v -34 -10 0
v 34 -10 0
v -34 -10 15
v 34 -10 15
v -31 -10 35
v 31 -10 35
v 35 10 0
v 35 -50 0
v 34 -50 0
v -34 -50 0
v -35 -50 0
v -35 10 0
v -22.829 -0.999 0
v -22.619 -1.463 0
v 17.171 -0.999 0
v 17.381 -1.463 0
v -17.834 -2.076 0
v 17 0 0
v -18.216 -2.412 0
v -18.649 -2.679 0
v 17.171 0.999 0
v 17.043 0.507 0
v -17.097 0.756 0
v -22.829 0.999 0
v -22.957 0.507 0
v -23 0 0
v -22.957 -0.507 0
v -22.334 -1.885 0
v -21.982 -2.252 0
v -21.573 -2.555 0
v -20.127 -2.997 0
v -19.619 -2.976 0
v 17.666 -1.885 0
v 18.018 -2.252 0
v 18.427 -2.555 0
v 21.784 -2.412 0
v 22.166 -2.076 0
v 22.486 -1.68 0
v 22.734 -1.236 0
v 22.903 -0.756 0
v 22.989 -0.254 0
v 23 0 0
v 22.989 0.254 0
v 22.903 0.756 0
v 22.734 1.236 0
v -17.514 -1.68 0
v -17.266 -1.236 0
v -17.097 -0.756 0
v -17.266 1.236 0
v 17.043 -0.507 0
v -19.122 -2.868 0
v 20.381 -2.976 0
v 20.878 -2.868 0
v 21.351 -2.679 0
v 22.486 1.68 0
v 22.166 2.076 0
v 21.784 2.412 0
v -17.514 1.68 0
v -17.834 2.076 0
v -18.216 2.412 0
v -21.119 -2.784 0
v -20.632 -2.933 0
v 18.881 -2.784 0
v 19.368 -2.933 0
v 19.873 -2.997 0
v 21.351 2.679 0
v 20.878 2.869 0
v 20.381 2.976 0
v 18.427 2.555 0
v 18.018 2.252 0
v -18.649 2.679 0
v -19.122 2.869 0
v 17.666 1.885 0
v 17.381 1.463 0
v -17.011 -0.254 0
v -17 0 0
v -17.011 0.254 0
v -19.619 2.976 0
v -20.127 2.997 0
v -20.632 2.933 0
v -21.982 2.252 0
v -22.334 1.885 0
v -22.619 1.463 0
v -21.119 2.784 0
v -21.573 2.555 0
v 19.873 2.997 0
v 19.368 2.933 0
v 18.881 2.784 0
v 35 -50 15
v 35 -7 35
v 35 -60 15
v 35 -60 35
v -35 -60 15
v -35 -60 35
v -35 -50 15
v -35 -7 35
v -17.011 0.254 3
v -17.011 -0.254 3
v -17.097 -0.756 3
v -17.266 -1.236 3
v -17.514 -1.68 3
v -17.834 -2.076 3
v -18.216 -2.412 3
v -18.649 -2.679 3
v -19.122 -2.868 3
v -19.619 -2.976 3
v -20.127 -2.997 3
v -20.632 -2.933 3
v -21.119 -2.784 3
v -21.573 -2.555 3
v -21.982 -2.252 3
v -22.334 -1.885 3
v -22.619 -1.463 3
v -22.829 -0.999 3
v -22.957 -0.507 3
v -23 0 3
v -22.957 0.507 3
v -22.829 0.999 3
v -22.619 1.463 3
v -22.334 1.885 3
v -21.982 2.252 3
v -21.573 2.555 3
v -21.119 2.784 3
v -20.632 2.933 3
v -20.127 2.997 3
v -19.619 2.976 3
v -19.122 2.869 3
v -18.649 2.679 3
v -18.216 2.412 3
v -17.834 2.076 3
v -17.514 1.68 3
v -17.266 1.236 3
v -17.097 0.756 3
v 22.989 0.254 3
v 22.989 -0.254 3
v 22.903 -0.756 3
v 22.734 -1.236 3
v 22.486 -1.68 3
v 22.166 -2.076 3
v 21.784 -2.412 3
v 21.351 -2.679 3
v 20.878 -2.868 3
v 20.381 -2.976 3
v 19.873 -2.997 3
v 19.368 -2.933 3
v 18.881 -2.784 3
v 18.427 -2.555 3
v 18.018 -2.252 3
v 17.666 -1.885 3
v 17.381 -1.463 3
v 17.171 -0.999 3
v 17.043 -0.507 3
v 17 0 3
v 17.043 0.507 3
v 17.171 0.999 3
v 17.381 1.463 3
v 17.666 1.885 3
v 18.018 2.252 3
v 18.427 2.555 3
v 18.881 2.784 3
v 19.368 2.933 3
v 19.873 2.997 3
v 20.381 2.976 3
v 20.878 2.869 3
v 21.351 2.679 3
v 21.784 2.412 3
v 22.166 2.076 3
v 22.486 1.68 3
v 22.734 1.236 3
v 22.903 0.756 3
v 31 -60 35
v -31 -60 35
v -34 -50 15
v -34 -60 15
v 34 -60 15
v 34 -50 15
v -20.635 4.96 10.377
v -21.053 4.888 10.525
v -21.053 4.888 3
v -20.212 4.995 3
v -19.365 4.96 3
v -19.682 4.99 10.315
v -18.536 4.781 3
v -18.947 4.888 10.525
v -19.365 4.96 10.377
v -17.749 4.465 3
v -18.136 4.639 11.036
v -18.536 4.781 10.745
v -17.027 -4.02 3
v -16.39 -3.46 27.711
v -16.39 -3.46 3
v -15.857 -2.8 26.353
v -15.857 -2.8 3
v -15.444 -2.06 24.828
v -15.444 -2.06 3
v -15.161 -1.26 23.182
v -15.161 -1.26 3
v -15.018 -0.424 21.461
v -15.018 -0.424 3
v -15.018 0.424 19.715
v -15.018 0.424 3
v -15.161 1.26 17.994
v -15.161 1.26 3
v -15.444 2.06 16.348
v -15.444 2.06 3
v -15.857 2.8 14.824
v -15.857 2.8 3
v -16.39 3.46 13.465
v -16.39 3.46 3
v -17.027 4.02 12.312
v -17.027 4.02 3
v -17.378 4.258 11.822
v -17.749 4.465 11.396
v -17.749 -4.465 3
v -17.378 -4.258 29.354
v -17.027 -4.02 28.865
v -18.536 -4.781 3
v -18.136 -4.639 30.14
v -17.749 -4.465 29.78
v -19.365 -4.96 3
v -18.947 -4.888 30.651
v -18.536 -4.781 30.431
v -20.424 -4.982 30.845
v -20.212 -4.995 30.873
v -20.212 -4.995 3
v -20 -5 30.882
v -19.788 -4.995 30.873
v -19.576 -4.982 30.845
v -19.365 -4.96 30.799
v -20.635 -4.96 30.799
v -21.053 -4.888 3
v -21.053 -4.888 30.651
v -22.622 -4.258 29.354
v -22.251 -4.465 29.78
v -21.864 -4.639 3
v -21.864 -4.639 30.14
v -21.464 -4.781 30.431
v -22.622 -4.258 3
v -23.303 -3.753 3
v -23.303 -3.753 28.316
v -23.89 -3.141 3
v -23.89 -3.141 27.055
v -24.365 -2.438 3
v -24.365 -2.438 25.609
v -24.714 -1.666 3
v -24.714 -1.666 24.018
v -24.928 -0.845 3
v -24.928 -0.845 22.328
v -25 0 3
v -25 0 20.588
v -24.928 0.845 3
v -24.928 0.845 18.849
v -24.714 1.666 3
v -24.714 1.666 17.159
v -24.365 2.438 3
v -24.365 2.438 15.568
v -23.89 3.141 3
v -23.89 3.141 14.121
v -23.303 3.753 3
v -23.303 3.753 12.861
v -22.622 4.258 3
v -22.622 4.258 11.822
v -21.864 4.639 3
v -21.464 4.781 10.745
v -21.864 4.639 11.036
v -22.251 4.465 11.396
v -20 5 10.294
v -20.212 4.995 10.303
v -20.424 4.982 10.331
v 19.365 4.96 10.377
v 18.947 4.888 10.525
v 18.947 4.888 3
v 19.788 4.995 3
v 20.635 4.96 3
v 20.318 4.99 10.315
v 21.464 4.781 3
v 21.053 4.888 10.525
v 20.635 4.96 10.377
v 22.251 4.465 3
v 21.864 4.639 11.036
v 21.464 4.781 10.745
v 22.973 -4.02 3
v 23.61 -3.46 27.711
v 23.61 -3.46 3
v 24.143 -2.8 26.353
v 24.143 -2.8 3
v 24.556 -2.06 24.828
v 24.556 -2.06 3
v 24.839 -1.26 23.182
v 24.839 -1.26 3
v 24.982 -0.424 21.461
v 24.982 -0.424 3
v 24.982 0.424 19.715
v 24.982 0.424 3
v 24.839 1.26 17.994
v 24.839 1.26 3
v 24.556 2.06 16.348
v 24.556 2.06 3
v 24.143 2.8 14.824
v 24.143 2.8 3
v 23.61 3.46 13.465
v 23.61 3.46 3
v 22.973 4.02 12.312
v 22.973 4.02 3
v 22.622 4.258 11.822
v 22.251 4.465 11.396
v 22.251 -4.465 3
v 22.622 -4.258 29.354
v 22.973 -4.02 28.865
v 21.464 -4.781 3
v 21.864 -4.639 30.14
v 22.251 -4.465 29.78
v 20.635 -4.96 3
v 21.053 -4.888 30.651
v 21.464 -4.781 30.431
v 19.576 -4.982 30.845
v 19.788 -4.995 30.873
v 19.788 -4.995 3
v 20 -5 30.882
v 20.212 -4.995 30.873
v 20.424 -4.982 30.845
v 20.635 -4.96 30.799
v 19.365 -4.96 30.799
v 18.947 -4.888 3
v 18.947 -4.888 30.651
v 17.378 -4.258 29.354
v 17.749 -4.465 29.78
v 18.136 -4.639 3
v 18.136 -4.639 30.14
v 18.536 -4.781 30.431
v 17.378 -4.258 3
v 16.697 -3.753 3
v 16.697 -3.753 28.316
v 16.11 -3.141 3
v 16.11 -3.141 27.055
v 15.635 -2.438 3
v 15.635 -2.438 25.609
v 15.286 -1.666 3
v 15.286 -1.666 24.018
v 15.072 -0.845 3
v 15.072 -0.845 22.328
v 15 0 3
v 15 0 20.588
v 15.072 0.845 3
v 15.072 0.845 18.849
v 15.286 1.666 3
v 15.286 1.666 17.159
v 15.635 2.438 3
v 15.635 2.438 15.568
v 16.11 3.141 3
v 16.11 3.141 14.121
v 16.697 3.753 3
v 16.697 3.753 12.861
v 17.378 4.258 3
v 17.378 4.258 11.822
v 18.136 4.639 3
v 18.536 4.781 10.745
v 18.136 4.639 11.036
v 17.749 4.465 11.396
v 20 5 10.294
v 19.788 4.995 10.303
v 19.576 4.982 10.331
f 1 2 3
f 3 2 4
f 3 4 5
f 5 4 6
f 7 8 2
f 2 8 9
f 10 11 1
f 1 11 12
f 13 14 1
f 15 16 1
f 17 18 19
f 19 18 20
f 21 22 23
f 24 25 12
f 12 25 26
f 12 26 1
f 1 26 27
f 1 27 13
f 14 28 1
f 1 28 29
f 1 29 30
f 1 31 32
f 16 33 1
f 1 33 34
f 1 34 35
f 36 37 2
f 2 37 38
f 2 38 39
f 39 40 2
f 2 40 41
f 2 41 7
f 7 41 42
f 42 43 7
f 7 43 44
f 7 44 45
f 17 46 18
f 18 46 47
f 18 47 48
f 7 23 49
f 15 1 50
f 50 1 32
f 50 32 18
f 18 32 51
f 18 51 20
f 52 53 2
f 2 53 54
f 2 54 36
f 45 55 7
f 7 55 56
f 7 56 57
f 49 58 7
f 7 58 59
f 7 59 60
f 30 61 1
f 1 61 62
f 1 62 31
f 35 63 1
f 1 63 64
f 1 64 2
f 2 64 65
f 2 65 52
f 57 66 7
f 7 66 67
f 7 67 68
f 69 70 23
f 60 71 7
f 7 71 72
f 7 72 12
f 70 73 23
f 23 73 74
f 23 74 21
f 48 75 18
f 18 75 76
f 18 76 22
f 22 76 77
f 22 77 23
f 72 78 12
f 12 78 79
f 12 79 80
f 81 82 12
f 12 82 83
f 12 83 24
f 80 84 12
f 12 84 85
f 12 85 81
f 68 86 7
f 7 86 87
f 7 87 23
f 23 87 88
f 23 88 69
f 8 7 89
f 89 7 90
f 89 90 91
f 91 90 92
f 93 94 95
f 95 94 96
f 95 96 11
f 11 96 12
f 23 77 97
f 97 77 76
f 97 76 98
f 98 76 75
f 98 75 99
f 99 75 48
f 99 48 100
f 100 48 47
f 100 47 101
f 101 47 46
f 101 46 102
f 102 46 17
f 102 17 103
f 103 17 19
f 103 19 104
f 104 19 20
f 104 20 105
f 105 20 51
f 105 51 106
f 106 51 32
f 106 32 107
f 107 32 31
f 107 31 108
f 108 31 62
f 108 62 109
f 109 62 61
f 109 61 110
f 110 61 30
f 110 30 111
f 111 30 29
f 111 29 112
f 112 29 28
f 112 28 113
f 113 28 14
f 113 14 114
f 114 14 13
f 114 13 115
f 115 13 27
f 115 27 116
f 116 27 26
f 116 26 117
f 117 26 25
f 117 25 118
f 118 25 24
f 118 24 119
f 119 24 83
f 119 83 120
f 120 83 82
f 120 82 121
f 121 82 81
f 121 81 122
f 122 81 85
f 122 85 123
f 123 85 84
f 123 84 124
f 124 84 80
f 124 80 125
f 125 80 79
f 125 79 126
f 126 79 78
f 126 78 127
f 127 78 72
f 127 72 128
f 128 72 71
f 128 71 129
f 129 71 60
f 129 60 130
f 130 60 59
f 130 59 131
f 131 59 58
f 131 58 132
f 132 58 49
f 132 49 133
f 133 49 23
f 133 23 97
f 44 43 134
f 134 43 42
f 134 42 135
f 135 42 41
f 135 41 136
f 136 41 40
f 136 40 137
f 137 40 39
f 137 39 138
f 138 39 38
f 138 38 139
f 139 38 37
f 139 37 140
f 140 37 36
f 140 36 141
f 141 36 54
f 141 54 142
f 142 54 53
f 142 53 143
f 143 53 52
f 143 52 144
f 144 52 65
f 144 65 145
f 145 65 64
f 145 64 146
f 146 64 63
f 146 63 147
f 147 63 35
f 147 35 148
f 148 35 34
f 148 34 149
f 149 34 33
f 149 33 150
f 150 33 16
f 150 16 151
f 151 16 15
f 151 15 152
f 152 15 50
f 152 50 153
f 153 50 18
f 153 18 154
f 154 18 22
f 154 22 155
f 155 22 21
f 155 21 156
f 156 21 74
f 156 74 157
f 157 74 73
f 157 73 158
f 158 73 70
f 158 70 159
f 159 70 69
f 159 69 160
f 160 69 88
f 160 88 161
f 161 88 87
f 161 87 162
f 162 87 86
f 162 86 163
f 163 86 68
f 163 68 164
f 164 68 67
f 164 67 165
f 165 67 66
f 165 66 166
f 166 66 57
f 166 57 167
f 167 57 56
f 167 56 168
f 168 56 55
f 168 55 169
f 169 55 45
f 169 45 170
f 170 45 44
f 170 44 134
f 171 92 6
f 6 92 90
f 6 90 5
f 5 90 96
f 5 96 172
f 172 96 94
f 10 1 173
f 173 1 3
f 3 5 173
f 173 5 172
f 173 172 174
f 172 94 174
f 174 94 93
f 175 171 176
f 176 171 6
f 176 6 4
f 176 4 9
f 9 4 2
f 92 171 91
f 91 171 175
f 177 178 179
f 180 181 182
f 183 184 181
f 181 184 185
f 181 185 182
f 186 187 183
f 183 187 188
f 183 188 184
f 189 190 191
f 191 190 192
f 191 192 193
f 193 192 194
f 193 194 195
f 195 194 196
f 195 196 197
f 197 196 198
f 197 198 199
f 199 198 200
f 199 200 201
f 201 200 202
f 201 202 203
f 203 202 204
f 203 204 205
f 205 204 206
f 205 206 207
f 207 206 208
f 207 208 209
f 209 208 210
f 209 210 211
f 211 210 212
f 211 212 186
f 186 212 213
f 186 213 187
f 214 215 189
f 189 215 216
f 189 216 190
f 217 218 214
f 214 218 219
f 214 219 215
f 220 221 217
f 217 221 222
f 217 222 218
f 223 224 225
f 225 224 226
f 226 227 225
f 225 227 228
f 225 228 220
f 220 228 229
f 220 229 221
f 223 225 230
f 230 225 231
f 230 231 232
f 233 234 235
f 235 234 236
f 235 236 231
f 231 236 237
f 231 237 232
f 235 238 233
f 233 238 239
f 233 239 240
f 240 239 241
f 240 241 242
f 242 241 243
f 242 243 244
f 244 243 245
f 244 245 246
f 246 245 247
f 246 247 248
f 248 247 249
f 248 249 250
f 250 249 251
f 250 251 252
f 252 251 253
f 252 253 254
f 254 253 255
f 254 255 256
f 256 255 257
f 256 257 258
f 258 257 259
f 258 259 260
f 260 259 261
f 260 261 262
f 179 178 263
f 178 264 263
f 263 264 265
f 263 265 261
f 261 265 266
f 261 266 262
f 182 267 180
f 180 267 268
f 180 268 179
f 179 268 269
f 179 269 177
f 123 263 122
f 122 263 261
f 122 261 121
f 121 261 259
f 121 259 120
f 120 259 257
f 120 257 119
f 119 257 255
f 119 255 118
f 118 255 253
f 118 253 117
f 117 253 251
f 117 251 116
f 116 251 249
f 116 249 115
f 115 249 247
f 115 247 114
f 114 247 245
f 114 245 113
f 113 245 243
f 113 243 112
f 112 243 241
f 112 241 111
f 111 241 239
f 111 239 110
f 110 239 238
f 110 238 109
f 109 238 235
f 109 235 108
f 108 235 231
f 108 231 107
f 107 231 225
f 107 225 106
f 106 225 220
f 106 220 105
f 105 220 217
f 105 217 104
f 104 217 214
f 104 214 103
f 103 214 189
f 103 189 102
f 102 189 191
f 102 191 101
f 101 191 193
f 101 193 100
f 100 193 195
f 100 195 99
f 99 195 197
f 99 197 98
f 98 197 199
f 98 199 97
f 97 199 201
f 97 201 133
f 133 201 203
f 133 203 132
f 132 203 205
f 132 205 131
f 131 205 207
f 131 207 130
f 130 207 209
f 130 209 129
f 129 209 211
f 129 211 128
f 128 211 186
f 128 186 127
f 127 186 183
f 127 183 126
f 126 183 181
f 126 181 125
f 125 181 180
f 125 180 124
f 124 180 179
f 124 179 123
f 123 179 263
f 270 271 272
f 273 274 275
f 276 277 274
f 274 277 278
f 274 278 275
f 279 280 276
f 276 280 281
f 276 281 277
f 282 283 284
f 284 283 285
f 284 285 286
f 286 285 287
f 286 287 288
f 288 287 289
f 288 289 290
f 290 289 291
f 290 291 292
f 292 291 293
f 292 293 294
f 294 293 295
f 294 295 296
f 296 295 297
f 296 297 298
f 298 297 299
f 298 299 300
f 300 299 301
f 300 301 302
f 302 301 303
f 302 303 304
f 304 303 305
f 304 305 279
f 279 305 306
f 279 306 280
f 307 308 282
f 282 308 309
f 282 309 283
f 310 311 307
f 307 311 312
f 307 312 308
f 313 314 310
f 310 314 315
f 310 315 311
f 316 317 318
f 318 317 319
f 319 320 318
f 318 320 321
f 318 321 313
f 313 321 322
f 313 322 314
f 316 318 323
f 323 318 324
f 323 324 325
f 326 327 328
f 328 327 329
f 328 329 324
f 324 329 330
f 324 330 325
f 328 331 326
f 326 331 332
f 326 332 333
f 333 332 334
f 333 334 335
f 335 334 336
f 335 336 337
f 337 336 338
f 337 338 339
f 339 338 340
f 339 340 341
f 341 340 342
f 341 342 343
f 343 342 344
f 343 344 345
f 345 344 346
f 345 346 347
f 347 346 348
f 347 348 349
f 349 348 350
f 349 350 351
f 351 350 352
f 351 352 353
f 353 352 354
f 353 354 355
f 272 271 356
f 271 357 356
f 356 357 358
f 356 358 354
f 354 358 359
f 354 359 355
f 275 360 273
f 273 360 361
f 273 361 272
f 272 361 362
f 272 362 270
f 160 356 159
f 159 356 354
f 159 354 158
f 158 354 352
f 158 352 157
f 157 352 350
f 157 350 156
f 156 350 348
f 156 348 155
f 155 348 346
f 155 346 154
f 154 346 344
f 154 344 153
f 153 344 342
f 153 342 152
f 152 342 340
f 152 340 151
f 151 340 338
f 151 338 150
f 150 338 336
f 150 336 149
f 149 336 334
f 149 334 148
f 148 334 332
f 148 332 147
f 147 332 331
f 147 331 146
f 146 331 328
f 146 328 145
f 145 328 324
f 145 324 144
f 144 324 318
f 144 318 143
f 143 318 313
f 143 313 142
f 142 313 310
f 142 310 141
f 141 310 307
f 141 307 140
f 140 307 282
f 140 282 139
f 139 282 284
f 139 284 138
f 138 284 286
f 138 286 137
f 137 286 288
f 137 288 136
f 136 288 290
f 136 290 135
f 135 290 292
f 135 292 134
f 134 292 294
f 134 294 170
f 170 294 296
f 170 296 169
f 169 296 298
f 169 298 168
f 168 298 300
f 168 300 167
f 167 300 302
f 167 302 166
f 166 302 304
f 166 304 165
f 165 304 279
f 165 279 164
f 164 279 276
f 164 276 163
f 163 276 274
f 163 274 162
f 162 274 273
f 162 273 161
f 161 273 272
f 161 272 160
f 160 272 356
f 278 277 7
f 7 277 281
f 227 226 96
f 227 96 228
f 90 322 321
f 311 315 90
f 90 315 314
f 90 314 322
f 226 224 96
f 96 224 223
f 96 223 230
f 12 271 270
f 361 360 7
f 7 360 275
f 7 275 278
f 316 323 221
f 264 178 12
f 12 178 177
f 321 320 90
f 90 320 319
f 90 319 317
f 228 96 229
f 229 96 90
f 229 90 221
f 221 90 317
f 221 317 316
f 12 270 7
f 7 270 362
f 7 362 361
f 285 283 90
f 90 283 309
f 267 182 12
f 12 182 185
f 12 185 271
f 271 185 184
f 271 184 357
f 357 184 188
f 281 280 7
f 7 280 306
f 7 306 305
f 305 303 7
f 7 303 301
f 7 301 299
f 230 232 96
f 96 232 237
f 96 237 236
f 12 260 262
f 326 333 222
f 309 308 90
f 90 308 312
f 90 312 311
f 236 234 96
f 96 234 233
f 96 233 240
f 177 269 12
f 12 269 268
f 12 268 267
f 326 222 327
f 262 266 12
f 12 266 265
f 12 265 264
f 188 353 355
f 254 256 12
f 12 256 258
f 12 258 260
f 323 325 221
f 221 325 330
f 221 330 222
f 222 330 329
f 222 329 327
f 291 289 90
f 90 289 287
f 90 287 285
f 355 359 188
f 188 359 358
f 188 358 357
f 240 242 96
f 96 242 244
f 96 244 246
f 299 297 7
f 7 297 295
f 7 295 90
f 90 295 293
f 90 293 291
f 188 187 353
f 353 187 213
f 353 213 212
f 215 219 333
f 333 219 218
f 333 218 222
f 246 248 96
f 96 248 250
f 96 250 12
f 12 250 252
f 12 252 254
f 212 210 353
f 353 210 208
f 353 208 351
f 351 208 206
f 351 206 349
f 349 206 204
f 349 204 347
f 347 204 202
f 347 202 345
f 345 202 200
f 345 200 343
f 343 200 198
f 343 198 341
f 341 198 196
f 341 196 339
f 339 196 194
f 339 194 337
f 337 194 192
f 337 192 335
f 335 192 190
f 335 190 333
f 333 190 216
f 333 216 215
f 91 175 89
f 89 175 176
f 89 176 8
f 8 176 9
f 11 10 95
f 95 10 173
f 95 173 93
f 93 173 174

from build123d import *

# Parameters (mm, degrees)
SKETCH_1_W          = 70
SKETCH_1_H          = 20
SKETCH_1_R          = 3
EXTRUDE_1_DEPTH     = 3
SKETCH_3_W          = 70
SKETCH_3_H          = 35
EXTRUDE_2_DEPTH     = 3
EXTRUDE_3_DEPTH     = 50
EXTRUDE_4_DEPTH     = 70
SKETCH_6_R          = 5
CUT_EXTRUDE_3_DEPTH = 30
CUT_EXTRUDE_4_DEPTH = 70
SKETCH_8_W          = 15
SKETCH_8_H          = 10
CUT_EXTRUDE_5_DEPTH = 99.615414617


with BuildPart() as part:
    # 草图1 → 凸台-拉伸1 (new body)
    with BuildSketch(Plane.XY):
        Rectangle(SKETCH_1_W, SKETCH_1_H)
        with Locations((-20, 0)):
            Circle(SKETCH_1_R, mode=Mode.SUBTRACT)
        with Locations((20, 0)):
            Circle(SKETCH_1_R, mode=Mode.SUBTRACT)
    extrude(amount=EXTRUDE_1_DEPTH)

    # 草图3 → 凸台-拉伸2 (add)
    with BuildSketch(Plane.XZ.offset(10)):
        with Locations((0, 17.5)):
            Rectangle(SKETCH_3_W, SKETCH_3_H)
    extrude(amount=-EXTRUDE_2_DEPTH)

    # 草图4 → 凸台-拉伸3 (add)
    with BuildSketch(Plane.XZ.offset(10)):
        Polygon((-34, 15), (-31, 35), (-35, 35), (-35, 15), (-35, 0), (-34, 0), align=None)
        Polygon((35, 0), (34, 0), (34, 15), (31, 35), (35, 35), (35, 15), align=None)
    extrude(amount=EXTRUDE_3_DEPTH)

    # 草图5 → 凸台-拉伸4 (add)
    with BuildSketch(Plane.ZY.offset(35)):
        Polygon((3, 10), (3, -7), (35, -7), align=None)
    extrude(amount=-EXTRUDE_4_DEPTH)

    # 草图6 → 切除-拉伸3 (cut)
    with BuildSketch(Plane(origin=(0, 0, 3), x_dir=(-1, 0, 0), z_dir=(0, 0, -1))):
        with Locations((-20, 0)):
            Circle(SKETCH_6_R)
        with Locations((20, 0)):
            Circle(SKETCH_6_R)
    extrude(amount=-CUT_EXTRUDE_3_DEPTH, mode=Mode.SUBTRACT)

    # 草图7 → 切除-拉伸4 (cut)
    with BuildSketch(Plane.ZY.offset(35)):
        Polygon((0, 10), (35, -7), (3, 10), align=None)
    extrude(amount=-CUT_EXTRUDE_4_DEPTH, mode=Mode.SUBTRACT)

    # 草图8 → 切除-拉伸5 (cut, through all)
    with BuildSketch(Plane.ZY.offset(35)):
        with Locations((7.5, -55)):
            Rectangle(SKETCH_8_W, SKETCH_8_H)
    extrude(amount=-CUT_EXTRUDE_5_DEPTH, mode=Mode.SUBTRACT)


solid = part.part
